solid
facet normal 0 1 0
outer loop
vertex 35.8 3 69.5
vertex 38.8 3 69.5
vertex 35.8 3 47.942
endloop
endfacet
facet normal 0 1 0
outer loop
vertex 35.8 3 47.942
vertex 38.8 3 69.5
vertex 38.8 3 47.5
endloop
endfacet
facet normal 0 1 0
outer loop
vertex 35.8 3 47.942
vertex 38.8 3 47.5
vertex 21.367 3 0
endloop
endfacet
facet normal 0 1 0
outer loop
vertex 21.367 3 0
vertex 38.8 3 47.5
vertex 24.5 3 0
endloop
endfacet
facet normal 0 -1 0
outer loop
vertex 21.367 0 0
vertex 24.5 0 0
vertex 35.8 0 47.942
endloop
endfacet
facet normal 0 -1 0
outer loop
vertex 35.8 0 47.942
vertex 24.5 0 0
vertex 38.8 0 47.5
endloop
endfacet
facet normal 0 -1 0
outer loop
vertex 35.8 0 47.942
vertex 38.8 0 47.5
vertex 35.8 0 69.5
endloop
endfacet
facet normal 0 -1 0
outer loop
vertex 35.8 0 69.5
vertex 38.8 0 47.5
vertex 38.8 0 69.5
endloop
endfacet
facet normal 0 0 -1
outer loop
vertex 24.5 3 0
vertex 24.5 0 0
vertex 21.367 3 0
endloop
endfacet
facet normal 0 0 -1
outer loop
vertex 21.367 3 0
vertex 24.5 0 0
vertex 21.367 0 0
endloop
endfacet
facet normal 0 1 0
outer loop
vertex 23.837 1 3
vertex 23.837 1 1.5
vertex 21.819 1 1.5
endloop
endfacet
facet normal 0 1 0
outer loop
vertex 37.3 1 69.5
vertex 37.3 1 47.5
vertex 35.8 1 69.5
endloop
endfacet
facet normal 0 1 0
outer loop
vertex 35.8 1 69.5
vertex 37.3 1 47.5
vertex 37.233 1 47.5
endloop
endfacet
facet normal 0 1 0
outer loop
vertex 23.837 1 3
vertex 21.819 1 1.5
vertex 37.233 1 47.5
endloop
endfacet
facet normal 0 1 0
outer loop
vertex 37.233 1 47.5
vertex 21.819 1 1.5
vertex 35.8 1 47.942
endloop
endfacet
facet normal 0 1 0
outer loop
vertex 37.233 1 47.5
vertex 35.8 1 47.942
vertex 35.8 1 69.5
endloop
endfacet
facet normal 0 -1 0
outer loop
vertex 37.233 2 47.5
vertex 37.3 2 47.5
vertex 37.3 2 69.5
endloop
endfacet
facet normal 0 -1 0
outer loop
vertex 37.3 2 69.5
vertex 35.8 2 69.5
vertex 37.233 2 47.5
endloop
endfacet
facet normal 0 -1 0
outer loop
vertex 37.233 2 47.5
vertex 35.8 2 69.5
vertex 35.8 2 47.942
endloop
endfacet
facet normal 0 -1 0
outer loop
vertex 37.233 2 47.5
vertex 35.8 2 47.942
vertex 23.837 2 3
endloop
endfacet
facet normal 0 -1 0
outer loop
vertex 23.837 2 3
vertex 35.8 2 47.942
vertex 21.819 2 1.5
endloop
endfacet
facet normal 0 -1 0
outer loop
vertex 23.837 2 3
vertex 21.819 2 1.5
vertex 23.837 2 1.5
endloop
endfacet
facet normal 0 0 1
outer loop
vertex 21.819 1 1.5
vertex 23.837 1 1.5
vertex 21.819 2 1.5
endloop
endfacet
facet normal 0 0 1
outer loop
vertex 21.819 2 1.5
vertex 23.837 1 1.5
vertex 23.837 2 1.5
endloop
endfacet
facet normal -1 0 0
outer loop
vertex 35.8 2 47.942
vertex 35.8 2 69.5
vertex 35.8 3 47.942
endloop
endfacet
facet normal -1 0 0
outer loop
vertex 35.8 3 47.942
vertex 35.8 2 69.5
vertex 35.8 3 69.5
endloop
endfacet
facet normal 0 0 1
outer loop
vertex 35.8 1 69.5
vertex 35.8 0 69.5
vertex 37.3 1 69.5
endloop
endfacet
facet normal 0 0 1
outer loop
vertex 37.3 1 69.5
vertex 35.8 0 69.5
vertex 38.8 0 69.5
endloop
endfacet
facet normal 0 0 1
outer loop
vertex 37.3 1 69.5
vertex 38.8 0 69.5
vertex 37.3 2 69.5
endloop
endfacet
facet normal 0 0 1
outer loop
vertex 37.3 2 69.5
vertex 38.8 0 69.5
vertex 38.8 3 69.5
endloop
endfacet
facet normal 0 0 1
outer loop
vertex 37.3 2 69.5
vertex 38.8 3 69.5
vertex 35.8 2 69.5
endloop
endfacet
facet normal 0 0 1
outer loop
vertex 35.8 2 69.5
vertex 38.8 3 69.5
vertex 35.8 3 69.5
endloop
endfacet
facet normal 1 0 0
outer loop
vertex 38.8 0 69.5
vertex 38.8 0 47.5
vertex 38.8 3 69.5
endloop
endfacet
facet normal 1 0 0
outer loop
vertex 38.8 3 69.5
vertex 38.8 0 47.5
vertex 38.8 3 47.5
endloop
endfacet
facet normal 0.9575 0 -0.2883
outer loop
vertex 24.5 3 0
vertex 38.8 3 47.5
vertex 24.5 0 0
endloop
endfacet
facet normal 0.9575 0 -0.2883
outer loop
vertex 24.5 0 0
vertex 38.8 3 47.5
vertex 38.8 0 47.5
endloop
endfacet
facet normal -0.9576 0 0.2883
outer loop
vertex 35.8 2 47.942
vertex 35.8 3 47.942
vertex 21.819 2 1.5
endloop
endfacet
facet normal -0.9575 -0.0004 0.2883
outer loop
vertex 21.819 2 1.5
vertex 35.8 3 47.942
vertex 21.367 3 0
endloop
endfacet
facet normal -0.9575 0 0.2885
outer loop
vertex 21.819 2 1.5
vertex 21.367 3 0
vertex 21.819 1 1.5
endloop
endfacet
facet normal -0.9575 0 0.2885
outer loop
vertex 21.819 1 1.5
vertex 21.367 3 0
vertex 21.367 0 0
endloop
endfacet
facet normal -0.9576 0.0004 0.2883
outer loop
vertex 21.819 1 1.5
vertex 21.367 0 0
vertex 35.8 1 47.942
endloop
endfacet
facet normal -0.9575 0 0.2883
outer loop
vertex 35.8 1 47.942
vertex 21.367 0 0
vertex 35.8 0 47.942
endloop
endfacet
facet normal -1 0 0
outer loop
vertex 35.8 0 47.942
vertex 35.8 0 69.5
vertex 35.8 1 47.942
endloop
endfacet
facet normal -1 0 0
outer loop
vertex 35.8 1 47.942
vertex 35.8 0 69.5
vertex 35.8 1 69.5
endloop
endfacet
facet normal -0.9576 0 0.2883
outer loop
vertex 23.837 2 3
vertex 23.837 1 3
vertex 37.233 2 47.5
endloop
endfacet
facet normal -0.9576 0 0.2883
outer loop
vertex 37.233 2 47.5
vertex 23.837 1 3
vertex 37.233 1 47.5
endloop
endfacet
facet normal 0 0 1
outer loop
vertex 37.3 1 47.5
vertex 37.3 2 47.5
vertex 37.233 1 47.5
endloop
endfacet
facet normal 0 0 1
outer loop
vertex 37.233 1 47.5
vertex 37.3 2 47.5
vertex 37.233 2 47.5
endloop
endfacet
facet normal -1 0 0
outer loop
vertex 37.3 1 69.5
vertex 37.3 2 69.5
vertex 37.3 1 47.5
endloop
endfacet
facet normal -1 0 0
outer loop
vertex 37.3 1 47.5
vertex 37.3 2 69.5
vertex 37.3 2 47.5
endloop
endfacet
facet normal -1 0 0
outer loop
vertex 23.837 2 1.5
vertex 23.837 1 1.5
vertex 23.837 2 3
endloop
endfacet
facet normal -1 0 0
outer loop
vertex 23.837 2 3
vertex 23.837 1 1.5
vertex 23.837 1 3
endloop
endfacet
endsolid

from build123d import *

# Parameters (mm, degrees)
EXTRUDE_1_DEPTH                   = 3
SKETCH_2_R                        = 1.5
SKETCH_2_R_2                      = 0.75
EXTRUDE_2_DEPTH                   = 73
SKETCH_3_W                        = 42
SKETCH_3_H                        = 3.5
SKETCH_3_W_2                      = 3.2
SKETCH_3_H_2                      = 20.2
CUT_EXTRUDE_1_DEPTH               = 83.725086884
CUT_EXTRUDE_2_REACH               = 84.028
CUT_EXTRUDE_2_OFFSET_FROM_SURFACE = 1.5
CUT_EXTRUDE_START                 = -1.5
SKETCH_4_W                        = 44.5
SKETCH_4_H                        = 1
SKETCH_4_3_W                      = 22
SKETCH_4_3_H                      = 1
CUT_EXTRUDE_3_DEPTH               = 37.5
SKETCH_5_W                        = 3
SKETCH_5_H                        = 1
EXTRUDE_3_DEPTH                   = 34.5
SKETCH_6_R                        = 0.35
CUT_EXTRUDE_4_DEPTH               = 80.653562381
SKETCH_7_W                        = 24.036657481
SKETCH_7_H                        = 1
CUT_EXTRUDE_5_DEPTH               = 1.5
SKETCH_8_OUTSIDE_W                = 60.252
SKETCH_8_OUTSIDE_H                = 87.752
CUT_EXTRUDE_6_DEPTH               = 80.653562381


with BuildPart() as part:
    # 草图1 → 凸台-拉伸1 (new body)
    with BuildSketch(Plane(origin=(0, 0, 0), x_dir=(1, 0, 0), z_dir=(0, 1, 0))):
        Polygon((0, 0), (0, -73), (38.8, -73), (38.8, -47.5), (24.5, 0), align=None)
    extrude(amount=EXTRUDE_1_DEPTH)

    # 草图2 → 凸台-拉伸2 (add)
    # profile 1 of 2: a face of its own
    with BuildSketch(Plane(origin=(0, 0, 0), x_dir=(-1, 0, 0), z_dir=(0, 0, -1))):
        with BuildLine():
            Line((0, 3), (0, 0))
            Line((0, 0), (1.7, 0))
            ThreePointArc((1.7, 0), (0.2, 1.5), (1.7, 3))
            Line((1.7, 3), (0, 3))
        make_face()
    # profile 2 of 2: a face of its own
    with BuildSketch(Plane(origin=(0, 0, 0), x_dir=(-1, 0, 0), z_dir=(0, 0, -1))):
        with Locations((1.7, 1.5)):
            Circle(SKETCH_2_R)
        with Locations((1.7, 1.5)):
            Circle(SKETCH_2_R_2, mode=Mode.SUBTRACT)
    extrude(amount=-EXTRUDE_2_DEPTH)

    # 草图3 → 切除-拉伸1 (cut, through all)
    with BuildSketch(Plane(origin=(0, 3, 0), x_dir=(1, 0, 0), z_dir=(0, 1, 0))):
        with Locations((17.8, -71.25)):
            Rectangle(SKETCH_3_W, SKETCH_3_H)
        with Locations((-1.6, -38.1)):
            Rectangle(SKETCH_3_W_2, SKETCH_3_H_2)
        Polygon((1.3, -3), (22.270157068, -3), (35.8, -47.941785964), (35.8, -69.5), (1.3, -69.5), align=None)
    extrude(amount=-CUT_EXTRUDE_1_DEPTH, mode=Mode.SUBTRACT)

    # 切除-拉伸2: up to this face of the body (flat: up to its plane, moved by the offset)
    cut_extrude_2_end = Plane(part.part.faces().sort_by_distance((29.035078534, 1.5, 25.470892982))[0]).offset(-CUT_EXTRUDE_2_OFFSET_FROM_SURFACE)
    # 草图4 → 切除-拉伸2 (cut, up to the picked face)
    with BuildSketch(Plane(origin=(1.3, 0, 0), x_dir=(0, 0, -1), z_dir=(1, 0, 0)).offset(CUT_EXTRUDE_START), mode=Mode.PRIVATE) as cut_extrude_2_sk1:
        with Locations((-25.25, 1.5)):
            Rectangle(SKETCH_4_W, SKETCH_4_H)
    cut_extrude_2_tool1 = split(extrude(cut_extrude_2_sk1.sketch, amount=CUT_EXTRUDE_2_REACH, mode=Mode.PRIVATE), bisect_by=cut_extrude_2_end, keep=Keep.BOTH, mode=Mode.PRIVATE)
    add(cut_extrude_2_tool1.solids().sort_by(Axis((-0.2, 1.5, 25.25), (1, 0, 0)))[0], mode=Mode.SUBTRACT)

    # 草图4<3> → 切除-拉伸3 (cut)
    with BuildSketch(Plane(origin=(1.3, 0, 0), x_dir=(0, 0, -1), z_dir=(1, 0, 0)).offset(CUT_EXTRUDE_START)):
        with Locations((-58.5, 1.5)):
            Rectangle(SKETCH_4_3_W, SKETCH_4_3_H)
    extrude(amount=CUT_EXTRUDE_3_DEPTH, mode=Mode.SUBTRACT)

    # 草图5 → 凸台-拉伸3 (add)
    with BuildSketch(Plane.ZY.offset(-35.8)):
        with Locations((49.441785964, 2.5)):
            Rectangle(SKETCH_5_W, SKETCH_5_H)
    extrude(amount=EXTRUDE_3_DEPTH)

    # 草图6 → 切除-拉伸4 (cut, through all)
    with BuildSketch(Plane(origin=(0, 3, 0), x_dir=(1, 0, 0), z_dir=(0, 1, 0))):
        with Locations(Location((32.8, -49.441785964, 0), (0, 0, 270))):
            Circle(SKETCH_6_R)
        with Locations(Location((24.9, -49.441785964, 0), (0, 0, 270))):
            Circle(SKETCH_6_R)
    extrude(amount=-CUT_EXTRUDE_4_DEPTH, mode=Mode.SUBTRACT)

    # 草图7 → 切除-拉伸5 (cut)
    with BuildSketch(Plane.XY.offset(3)):
        with Locations((11.818328741, 1.5)):
            Rectangle(SKETCH_7_W, SKETCH_7_H)
    extrude(amount=-CUT_EXTRUDE_5_DEPTH, mode=Mode.SUBTRACT)

    # 草图8 outside → 切除-拉伸6 (cut, through all)
    with BuildSketch(Plane(origin=(0, 3, 0), x_dir=(1, 0, 0), z_dir=(0, 1, 0))):
        with Locations((17.8, -34.75)):
            Rectangle(SKETCH_8_OUTSIDE_W, SKETCH_8_OUTSIDE_H)
        Polygon((20.332372981, 3.436695391), (35.8, -47.941785964), (35.8, -72.849501568), (56.307983414, -72.849501568), (56.307983414, 3.436695391), align=None, mode=Mode.SUBTRACT)
    extrude(amount=-CUT_EXTRUDE_6_DEPTH, mode=Mode.SUBTRACT)


solid = part.part
